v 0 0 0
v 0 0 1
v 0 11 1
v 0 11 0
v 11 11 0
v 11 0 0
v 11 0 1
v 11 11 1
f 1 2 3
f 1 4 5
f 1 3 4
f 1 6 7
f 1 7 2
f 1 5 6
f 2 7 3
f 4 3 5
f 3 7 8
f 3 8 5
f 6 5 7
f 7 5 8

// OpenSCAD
/* Warning, this is a very basic generator with a lot of approximation 
input data : [FCBGA, THX, 11x11mm, 169, , A, C04-00309A]
generated by com.zoubworld.electronics.cad.model3d.Basic
Date : Sun Feb 15 10:50:48 CET 2026
*/

//body
color("black")
translate([0,0,0])
cube([11.0,11.0,1.0], center=false);
